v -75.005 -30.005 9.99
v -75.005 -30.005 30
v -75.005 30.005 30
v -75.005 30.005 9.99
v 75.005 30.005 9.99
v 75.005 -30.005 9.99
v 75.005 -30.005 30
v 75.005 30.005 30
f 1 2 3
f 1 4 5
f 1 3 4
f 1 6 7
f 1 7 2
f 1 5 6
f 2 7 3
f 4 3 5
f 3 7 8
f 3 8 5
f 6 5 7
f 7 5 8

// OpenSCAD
// Start: lazy_union
default_5_default_5();
// End: lazy_union

// Modules.

// 'PartMaterial undef-default - default 5.0'
module default_5_default_5() {
  // 'None : _combine_solids_and_holes'
  union() {
    // 'default : _combine_solids_and_holes'
    union() {
      // 'cutter'
      multmatrix(m=[[1.0, 0.0, 0.0, -75.005], [0.0, 1.0, 0.0, -30.005], [0.0, 0.0, 1.0, 9.989999999999998], [0.0, 0.0, 0.0, 1.0]]) {
        // 'cutter : _combine_solids_and_holes'
        union() {
          // 'cutter'
          cube(size=[150.01, 60.01, 20.01]);
        }
      }
    }
  }
} // end module default_5_default_5
